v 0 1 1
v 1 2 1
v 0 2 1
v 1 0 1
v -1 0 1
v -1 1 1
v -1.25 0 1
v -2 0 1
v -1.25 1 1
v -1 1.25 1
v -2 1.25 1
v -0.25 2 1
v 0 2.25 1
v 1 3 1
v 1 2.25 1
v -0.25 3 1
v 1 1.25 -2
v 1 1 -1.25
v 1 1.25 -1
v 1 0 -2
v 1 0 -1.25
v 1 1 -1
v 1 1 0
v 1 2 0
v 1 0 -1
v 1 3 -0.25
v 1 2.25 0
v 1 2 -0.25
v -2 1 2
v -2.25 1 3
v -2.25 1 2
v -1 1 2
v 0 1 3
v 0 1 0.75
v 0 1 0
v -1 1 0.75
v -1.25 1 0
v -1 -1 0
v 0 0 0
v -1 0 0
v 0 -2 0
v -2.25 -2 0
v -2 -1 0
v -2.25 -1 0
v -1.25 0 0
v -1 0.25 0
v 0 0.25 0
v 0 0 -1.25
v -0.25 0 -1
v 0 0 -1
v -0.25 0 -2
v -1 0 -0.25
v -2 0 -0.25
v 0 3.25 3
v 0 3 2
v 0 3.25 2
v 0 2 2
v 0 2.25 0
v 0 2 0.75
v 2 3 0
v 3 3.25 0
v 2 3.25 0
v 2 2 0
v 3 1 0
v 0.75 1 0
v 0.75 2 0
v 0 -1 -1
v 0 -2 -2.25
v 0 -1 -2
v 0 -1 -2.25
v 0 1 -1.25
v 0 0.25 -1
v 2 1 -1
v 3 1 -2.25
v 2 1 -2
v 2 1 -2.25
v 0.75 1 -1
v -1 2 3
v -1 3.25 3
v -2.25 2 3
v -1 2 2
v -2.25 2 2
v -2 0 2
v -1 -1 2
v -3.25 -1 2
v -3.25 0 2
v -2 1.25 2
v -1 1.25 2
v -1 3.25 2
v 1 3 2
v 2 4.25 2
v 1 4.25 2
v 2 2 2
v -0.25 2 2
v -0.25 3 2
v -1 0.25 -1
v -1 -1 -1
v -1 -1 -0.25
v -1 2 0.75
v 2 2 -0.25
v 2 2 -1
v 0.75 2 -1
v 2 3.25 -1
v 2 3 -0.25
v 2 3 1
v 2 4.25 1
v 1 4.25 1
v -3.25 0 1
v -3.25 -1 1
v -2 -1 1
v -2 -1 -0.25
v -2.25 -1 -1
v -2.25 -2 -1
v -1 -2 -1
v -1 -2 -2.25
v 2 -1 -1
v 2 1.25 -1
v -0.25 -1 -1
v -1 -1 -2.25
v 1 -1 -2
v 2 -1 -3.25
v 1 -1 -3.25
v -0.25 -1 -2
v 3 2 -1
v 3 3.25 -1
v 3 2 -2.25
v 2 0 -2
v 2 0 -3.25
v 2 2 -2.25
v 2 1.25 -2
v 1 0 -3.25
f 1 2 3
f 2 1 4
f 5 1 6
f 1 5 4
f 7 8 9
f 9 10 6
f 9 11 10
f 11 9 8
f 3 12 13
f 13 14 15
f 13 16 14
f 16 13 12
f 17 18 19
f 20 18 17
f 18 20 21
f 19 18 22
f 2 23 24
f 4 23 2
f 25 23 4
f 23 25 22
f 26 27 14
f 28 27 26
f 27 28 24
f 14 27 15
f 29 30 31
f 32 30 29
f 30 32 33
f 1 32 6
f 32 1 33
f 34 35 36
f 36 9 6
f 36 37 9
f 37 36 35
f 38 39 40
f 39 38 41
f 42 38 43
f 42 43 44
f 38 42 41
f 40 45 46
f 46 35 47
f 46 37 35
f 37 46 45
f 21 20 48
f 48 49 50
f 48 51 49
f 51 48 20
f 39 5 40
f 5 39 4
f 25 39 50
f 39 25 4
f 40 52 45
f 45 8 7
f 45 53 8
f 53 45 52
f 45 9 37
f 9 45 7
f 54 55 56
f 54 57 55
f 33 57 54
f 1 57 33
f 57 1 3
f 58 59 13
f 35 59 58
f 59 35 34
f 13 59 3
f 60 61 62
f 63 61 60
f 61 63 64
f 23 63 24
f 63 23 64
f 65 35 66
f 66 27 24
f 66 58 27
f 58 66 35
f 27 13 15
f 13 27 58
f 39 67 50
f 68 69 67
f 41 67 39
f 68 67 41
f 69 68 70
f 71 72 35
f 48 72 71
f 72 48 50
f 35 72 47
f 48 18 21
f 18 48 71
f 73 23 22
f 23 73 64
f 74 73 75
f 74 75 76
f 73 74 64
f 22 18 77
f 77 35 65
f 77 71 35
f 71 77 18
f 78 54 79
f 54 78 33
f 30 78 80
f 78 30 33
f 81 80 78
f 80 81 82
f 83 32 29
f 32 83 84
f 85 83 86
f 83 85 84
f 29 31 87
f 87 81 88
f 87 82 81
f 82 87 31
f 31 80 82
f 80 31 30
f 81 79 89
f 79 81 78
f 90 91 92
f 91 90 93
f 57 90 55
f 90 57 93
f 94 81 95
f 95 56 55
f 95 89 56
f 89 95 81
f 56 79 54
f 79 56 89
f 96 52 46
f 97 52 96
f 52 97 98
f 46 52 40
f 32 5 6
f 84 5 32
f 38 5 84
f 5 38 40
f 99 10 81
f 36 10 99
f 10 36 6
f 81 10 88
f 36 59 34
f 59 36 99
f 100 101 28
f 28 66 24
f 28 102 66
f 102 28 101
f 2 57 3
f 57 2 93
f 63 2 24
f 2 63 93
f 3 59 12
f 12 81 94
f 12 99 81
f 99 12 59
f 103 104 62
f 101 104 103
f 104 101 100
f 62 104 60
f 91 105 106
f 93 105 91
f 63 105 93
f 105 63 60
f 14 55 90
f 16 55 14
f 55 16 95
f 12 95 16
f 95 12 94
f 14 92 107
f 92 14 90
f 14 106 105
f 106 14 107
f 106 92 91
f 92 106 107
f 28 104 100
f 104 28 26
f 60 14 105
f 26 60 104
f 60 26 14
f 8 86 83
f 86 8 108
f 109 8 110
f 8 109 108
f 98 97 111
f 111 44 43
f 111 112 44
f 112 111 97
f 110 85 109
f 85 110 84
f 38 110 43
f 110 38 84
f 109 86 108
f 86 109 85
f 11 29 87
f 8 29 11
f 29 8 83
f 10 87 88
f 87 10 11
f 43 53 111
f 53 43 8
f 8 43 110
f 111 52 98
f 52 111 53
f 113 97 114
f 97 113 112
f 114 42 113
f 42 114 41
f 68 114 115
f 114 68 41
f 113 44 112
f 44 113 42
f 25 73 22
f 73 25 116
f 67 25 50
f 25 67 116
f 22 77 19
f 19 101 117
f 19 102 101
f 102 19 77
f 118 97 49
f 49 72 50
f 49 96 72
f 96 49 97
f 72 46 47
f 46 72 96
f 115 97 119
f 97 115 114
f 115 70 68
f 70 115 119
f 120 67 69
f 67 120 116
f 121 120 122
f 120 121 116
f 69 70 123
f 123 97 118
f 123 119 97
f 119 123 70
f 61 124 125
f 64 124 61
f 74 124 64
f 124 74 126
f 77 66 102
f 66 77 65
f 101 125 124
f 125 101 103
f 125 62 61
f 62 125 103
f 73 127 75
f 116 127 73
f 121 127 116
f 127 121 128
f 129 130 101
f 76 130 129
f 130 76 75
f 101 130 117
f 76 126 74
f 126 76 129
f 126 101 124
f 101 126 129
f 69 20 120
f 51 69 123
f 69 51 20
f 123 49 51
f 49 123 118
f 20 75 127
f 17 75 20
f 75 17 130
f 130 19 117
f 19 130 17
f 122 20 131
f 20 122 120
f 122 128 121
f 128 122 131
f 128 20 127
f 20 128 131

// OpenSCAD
module module_cube_4(translation= [0,0,0]){
    translate(translation)union() {
cube(1,1,1);    
translate([-1,0,0])cube(size = [1,1,1]);
translate([0,1,0])cube(size = [1,1,1]);
translate([0,0,-1])cube(size = [1,1,1]);
    }
};
module module_cube_4_support(translation= [0,0,0]){
    translate(translation)union() {
cube(1,1,1);    
translate([-1.25,0,0])cube(size = [1.25,1,1]);
translate([0,1,0])cube(size = [1,1.25,1]);
translate([0,0,-1.25])cube(size = [1,1,1.25]);
    }
};

module module_cube_7(translation= [0,0,0]){
    translate(translation)union() {
cube(1,1,1);    
translate([-2,0,0])cube(size = [2,1,1]);
translate([0,1,0])cube(size = [1,2,1]);
translate([0,0,-2])cube(size = [1,1,2]);
    }
};

color("blue")module_cube_4_support([0,0,0]);
module_cube_4_support([-1,1,2]);
module_cube_4_support([1,2,1]);
module_cube_4_support([-2,-1,1]);
module_cube_4_support([-1,-2,-1]);
module_cube_4_support([2,1,-1]);
module_cube_4_support([1,-1,-2]);
